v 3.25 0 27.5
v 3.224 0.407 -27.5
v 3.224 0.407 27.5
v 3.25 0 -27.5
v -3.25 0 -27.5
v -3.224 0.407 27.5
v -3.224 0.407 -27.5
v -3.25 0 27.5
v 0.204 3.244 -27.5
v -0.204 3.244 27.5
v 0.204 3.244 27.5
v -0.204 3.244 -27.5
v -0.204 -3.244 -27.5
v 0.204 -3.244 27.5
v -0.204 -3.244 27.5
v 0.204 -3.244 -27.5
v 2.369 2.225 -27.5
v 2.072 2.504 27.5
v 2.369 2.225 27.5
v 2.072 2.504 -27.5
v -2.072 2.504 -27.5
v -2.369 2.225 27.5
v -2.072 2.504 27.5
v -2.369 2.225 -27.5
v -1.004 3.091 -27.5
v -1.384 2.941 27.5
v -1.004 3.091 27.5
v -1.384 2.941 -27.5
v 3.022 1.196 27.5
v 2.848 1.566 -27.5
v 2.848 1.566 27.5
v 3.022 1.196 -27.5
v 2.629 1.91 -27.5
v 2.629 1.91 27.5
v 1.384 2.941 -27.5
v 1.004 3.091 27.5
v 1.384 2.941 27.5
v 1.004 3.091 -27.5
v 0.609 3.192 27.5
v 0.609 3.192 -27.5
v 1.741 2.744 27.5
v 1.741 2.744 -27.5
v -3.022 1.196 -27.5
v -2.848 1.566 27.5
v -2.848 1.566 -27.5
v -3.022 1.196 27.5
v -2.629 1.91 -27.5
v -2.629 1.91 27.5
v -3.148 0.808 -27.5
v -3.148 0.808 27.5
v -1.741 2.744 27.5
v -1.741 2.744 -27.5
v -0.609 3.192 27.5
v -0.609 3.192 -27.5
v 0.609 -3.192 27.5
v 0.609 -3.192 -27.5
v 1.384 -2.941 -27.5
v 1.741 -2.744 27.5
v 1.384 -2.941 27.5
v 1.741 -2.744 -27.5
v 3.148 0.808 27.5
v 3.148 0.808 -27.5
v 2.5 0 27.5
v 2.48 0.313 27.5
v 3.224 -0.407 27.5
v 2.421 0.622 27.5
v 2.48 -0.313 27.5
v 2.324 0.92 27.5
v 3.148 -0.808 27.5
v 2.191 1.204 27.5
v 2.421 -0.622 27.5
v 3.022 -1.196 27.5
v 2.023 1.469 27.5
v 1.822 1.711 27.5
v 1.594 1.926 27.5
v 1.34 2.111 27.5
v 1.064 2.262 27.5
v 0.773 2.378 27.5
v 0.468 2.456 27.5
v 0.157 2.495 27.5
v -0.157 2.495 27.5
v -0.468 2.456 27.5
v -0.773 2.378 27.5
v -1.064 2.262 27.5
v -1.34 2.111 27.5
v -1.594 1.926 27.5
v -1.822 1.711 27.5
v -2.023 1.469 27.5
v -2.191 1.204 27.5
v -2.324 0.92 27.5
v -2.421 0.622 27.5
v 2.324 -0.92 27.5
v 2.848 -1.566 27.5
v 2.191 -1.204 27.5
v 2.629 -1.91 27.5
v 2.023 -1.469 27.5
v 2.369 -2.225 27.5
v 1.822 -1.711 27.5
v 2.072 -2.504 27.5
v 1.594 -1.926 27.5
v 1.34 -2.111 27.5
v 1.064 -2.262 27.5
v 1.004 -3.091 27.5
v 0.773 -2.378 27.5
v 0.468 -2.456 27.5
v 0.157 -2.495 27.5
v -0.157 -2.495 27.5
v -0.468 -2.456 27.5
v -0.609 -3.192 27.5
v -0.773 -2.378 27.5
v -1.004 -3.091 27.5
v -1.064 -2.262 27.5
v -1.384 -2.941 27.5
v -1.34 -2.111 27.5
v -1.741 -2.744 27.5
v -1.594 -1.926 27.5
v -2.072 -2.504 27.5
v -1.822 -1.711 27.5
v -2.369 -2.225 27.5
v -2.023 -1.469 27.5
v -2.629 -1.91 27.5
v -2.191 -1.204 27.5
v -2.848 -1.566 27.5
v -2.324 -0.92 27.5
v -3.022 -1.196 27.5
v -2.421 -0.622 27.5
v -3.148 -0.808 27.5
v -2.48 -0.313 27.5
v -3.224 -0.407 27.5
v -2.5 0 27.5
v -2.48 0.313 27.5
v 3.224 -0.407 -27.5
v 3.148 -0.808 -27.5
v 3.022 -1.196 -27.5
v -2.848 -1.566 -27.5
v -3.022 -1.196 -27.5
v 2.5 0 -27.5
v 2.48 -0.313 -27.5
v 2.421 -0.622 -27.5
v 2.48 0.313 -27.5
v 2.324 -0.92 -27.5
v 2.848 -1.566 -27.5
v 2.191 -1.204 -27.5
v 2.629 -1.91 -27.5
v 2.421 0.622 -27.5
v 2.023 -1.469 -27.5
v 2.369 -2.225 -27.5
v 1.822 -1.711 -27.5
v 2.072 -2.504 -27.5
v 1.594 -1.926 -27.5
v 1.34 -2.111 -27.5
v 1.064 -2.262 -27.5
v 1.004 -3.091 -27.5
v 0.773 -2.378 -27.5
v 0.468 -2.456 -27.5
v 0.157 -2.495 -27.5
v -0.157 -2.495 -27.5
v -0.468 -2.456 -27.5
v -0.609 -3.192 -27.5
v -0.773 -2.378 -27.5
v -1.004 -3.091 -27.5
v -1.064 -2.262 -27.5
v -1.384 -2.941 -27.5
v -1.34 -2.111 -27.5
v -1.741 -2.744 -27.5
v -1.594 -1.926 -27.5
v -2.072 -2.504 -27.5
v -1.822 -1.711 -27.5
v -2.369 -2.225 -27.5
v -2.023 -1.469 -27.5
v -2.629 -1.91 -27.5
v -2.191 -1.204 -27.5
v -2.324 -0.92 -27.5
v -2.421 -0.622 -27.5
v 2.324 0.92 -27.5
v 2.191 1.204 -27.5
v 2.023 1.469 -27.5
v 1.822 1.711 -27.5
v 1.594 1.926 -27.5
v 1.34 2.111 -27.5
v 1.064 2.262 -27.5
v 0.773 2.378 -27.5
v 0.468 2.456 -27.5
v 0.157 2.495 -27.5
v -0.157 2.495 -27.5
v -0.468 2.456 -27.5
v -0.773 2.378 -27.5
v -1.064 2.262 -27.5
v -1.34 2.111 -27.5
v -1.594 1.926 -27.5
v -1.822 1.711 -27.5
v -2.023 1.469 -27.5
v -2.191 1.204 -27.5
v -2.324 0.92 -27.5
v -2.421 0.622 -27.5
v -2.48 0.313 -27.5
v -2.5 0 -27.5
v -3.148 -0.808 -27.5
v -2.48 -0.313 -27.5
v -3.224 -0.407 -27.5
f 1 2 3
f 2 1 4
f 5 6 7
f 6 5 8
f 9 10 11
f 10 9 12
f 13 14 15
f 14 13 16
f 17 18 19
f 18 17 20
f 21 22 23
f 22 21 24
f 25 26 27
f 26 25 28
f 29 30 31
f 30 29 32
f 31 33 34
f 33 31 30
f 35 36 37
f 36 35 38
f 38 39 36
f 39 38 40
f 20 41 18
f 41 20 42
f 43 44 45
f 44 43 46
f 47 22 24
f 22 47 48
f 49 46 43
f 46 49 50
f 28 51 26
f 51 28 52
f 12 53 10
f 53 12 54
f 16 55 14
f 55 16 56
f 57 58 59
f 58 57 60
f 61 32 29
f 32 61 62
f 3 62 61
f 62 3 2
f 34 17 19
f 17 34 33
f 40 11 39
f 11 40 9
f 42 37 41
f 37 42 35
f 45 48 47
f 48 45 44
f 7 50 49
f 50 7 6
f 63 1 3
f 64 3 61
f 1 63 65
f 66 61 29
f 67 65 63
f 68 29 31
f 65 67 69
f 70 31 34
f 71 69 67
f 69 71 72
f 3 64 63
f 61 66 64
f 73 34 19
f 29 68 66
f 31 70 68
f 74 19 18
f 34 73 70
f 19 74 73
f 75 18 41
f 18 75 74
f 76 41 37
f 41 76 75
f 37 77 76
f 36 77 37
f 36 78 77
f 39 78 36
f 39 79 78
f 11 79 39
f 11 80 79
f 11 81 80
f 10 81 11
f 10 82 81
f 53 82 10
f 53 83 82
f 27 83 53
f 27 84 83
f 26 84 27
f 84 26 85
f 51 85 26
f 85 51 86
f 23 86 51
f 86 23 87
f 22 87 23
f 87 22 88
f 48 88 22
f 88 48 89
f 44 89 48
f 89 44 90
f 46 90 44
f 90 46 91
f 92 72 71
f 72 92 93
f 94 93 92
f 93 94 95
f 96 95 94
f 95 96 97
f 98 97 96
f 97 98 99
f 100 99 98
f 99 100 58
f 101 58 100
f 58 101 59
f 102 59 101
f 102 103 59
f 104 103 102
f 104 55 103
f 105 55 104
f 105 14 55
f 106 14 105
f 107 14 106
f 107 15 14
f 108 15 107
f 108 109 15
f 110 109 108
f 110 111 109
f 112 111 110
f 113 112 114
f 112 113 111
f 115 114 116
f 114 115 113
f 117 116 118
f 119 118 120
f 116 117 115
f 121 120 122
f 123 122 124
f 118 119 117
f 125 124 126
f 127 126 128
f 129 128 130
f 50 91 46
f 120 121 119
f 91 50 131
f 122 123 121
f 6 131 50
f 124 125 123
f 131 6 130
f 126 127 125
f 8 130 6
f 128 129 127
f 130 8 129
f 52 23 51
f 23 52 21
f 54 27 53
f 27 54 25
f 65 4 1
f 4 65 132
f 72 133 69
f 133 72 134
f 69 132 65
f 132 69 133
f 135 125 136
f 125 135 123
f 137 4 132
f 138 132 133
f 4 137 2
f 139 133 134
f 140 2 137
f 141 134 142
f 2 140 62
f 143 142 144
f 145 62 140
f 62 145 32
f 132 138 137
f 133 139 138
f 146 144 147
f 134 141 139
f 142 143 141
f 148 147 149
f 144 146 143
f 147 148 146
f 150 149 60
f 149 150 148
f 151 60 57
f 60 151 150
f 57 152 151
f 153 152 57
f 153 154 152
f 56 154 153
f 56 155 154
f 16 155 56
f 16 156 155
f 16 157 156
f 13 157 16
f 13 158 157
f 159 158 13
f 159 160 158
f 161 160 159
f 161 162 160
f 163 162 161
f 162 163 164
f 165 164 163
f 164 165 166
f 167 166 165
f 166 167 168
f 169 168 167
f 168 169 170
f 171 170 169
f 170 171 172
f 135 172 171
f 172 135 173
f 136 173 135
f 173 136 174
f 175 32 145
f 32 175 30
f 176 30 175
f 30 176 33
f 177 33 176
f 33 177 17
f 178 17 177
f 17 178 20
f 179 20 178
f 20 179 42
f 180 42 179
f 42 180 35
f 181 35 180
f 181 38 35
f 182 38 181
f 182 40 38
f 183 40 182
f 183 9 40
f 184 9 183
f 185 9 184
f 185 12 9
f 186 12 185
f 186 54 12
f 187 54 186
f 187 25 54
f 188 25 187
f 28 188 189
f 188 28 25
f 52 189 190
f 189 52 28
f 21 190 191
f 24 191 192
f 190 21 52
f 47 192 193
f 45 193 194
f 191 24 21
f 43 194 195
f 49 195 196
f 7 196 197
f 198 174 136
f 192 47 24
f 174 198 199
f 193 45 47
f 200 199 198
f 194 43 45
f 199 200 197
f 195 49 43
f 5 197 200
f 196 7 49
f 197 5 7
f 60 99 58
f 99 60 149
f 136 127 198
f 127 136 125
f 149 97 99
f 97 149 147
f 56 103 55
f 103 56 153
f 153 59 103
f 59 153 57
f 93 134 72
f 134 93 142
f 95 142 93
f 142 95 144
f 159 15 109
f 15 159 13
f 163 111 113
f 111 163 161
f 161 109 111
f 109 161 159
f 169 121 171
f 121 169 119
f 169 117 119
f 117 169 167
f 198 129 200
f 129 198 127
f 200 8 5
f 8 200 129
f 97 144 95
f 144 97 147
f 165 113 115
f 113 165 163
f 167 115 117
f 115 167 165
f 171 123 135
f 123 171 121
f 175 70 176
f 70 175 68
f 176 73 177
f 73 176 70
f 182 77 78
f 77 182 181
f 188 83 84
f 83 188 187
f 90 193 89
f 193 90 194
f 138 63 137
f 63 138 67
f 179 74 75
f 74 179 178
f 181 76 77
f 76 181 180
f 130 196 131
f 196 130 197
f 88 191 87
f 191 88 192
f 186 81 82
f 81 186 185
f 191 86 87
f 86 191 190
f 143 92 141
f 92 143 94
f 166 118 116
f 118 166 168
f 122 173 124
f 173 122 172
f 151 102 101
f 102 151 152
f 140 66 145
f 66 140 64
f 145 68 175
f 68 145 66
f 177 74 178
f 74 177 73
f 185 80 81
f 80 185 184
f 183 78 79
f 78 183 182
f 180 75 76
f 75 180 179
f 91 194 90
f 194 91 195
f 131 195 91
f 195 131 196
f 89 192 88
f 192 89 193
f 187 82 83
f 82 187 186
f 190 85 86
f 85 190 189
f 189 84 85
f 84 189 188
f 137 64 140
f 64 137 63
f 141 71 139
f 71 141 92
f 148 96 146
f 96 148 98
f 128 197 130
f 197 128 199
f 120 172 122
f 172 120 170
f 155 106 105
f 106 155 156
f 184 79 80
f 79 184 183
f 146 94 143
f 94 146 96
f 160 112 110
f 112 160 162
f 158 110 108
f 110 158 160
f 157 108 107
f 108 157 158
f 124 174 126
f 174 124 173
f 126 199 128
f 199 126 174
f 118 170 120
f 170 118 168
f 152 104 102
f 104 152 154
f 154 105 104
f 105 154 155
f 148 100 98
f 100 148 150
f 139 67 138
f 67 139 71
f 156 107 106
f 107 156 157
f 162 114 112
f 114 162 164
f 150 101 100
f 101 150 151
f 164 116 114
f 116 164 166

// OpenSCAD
$fn = 50;


difference() {
	union() {
		translate(v = [0, 0, -27.5000000000]) {
			cylinder(h = 55, r = 3.2500000000);
		}
	}
	union() {
		translate(v = [0, 0, -100.0000000000]) {
			cylinder(h = 200, r = 2.5000000000);
		}
	}
}
